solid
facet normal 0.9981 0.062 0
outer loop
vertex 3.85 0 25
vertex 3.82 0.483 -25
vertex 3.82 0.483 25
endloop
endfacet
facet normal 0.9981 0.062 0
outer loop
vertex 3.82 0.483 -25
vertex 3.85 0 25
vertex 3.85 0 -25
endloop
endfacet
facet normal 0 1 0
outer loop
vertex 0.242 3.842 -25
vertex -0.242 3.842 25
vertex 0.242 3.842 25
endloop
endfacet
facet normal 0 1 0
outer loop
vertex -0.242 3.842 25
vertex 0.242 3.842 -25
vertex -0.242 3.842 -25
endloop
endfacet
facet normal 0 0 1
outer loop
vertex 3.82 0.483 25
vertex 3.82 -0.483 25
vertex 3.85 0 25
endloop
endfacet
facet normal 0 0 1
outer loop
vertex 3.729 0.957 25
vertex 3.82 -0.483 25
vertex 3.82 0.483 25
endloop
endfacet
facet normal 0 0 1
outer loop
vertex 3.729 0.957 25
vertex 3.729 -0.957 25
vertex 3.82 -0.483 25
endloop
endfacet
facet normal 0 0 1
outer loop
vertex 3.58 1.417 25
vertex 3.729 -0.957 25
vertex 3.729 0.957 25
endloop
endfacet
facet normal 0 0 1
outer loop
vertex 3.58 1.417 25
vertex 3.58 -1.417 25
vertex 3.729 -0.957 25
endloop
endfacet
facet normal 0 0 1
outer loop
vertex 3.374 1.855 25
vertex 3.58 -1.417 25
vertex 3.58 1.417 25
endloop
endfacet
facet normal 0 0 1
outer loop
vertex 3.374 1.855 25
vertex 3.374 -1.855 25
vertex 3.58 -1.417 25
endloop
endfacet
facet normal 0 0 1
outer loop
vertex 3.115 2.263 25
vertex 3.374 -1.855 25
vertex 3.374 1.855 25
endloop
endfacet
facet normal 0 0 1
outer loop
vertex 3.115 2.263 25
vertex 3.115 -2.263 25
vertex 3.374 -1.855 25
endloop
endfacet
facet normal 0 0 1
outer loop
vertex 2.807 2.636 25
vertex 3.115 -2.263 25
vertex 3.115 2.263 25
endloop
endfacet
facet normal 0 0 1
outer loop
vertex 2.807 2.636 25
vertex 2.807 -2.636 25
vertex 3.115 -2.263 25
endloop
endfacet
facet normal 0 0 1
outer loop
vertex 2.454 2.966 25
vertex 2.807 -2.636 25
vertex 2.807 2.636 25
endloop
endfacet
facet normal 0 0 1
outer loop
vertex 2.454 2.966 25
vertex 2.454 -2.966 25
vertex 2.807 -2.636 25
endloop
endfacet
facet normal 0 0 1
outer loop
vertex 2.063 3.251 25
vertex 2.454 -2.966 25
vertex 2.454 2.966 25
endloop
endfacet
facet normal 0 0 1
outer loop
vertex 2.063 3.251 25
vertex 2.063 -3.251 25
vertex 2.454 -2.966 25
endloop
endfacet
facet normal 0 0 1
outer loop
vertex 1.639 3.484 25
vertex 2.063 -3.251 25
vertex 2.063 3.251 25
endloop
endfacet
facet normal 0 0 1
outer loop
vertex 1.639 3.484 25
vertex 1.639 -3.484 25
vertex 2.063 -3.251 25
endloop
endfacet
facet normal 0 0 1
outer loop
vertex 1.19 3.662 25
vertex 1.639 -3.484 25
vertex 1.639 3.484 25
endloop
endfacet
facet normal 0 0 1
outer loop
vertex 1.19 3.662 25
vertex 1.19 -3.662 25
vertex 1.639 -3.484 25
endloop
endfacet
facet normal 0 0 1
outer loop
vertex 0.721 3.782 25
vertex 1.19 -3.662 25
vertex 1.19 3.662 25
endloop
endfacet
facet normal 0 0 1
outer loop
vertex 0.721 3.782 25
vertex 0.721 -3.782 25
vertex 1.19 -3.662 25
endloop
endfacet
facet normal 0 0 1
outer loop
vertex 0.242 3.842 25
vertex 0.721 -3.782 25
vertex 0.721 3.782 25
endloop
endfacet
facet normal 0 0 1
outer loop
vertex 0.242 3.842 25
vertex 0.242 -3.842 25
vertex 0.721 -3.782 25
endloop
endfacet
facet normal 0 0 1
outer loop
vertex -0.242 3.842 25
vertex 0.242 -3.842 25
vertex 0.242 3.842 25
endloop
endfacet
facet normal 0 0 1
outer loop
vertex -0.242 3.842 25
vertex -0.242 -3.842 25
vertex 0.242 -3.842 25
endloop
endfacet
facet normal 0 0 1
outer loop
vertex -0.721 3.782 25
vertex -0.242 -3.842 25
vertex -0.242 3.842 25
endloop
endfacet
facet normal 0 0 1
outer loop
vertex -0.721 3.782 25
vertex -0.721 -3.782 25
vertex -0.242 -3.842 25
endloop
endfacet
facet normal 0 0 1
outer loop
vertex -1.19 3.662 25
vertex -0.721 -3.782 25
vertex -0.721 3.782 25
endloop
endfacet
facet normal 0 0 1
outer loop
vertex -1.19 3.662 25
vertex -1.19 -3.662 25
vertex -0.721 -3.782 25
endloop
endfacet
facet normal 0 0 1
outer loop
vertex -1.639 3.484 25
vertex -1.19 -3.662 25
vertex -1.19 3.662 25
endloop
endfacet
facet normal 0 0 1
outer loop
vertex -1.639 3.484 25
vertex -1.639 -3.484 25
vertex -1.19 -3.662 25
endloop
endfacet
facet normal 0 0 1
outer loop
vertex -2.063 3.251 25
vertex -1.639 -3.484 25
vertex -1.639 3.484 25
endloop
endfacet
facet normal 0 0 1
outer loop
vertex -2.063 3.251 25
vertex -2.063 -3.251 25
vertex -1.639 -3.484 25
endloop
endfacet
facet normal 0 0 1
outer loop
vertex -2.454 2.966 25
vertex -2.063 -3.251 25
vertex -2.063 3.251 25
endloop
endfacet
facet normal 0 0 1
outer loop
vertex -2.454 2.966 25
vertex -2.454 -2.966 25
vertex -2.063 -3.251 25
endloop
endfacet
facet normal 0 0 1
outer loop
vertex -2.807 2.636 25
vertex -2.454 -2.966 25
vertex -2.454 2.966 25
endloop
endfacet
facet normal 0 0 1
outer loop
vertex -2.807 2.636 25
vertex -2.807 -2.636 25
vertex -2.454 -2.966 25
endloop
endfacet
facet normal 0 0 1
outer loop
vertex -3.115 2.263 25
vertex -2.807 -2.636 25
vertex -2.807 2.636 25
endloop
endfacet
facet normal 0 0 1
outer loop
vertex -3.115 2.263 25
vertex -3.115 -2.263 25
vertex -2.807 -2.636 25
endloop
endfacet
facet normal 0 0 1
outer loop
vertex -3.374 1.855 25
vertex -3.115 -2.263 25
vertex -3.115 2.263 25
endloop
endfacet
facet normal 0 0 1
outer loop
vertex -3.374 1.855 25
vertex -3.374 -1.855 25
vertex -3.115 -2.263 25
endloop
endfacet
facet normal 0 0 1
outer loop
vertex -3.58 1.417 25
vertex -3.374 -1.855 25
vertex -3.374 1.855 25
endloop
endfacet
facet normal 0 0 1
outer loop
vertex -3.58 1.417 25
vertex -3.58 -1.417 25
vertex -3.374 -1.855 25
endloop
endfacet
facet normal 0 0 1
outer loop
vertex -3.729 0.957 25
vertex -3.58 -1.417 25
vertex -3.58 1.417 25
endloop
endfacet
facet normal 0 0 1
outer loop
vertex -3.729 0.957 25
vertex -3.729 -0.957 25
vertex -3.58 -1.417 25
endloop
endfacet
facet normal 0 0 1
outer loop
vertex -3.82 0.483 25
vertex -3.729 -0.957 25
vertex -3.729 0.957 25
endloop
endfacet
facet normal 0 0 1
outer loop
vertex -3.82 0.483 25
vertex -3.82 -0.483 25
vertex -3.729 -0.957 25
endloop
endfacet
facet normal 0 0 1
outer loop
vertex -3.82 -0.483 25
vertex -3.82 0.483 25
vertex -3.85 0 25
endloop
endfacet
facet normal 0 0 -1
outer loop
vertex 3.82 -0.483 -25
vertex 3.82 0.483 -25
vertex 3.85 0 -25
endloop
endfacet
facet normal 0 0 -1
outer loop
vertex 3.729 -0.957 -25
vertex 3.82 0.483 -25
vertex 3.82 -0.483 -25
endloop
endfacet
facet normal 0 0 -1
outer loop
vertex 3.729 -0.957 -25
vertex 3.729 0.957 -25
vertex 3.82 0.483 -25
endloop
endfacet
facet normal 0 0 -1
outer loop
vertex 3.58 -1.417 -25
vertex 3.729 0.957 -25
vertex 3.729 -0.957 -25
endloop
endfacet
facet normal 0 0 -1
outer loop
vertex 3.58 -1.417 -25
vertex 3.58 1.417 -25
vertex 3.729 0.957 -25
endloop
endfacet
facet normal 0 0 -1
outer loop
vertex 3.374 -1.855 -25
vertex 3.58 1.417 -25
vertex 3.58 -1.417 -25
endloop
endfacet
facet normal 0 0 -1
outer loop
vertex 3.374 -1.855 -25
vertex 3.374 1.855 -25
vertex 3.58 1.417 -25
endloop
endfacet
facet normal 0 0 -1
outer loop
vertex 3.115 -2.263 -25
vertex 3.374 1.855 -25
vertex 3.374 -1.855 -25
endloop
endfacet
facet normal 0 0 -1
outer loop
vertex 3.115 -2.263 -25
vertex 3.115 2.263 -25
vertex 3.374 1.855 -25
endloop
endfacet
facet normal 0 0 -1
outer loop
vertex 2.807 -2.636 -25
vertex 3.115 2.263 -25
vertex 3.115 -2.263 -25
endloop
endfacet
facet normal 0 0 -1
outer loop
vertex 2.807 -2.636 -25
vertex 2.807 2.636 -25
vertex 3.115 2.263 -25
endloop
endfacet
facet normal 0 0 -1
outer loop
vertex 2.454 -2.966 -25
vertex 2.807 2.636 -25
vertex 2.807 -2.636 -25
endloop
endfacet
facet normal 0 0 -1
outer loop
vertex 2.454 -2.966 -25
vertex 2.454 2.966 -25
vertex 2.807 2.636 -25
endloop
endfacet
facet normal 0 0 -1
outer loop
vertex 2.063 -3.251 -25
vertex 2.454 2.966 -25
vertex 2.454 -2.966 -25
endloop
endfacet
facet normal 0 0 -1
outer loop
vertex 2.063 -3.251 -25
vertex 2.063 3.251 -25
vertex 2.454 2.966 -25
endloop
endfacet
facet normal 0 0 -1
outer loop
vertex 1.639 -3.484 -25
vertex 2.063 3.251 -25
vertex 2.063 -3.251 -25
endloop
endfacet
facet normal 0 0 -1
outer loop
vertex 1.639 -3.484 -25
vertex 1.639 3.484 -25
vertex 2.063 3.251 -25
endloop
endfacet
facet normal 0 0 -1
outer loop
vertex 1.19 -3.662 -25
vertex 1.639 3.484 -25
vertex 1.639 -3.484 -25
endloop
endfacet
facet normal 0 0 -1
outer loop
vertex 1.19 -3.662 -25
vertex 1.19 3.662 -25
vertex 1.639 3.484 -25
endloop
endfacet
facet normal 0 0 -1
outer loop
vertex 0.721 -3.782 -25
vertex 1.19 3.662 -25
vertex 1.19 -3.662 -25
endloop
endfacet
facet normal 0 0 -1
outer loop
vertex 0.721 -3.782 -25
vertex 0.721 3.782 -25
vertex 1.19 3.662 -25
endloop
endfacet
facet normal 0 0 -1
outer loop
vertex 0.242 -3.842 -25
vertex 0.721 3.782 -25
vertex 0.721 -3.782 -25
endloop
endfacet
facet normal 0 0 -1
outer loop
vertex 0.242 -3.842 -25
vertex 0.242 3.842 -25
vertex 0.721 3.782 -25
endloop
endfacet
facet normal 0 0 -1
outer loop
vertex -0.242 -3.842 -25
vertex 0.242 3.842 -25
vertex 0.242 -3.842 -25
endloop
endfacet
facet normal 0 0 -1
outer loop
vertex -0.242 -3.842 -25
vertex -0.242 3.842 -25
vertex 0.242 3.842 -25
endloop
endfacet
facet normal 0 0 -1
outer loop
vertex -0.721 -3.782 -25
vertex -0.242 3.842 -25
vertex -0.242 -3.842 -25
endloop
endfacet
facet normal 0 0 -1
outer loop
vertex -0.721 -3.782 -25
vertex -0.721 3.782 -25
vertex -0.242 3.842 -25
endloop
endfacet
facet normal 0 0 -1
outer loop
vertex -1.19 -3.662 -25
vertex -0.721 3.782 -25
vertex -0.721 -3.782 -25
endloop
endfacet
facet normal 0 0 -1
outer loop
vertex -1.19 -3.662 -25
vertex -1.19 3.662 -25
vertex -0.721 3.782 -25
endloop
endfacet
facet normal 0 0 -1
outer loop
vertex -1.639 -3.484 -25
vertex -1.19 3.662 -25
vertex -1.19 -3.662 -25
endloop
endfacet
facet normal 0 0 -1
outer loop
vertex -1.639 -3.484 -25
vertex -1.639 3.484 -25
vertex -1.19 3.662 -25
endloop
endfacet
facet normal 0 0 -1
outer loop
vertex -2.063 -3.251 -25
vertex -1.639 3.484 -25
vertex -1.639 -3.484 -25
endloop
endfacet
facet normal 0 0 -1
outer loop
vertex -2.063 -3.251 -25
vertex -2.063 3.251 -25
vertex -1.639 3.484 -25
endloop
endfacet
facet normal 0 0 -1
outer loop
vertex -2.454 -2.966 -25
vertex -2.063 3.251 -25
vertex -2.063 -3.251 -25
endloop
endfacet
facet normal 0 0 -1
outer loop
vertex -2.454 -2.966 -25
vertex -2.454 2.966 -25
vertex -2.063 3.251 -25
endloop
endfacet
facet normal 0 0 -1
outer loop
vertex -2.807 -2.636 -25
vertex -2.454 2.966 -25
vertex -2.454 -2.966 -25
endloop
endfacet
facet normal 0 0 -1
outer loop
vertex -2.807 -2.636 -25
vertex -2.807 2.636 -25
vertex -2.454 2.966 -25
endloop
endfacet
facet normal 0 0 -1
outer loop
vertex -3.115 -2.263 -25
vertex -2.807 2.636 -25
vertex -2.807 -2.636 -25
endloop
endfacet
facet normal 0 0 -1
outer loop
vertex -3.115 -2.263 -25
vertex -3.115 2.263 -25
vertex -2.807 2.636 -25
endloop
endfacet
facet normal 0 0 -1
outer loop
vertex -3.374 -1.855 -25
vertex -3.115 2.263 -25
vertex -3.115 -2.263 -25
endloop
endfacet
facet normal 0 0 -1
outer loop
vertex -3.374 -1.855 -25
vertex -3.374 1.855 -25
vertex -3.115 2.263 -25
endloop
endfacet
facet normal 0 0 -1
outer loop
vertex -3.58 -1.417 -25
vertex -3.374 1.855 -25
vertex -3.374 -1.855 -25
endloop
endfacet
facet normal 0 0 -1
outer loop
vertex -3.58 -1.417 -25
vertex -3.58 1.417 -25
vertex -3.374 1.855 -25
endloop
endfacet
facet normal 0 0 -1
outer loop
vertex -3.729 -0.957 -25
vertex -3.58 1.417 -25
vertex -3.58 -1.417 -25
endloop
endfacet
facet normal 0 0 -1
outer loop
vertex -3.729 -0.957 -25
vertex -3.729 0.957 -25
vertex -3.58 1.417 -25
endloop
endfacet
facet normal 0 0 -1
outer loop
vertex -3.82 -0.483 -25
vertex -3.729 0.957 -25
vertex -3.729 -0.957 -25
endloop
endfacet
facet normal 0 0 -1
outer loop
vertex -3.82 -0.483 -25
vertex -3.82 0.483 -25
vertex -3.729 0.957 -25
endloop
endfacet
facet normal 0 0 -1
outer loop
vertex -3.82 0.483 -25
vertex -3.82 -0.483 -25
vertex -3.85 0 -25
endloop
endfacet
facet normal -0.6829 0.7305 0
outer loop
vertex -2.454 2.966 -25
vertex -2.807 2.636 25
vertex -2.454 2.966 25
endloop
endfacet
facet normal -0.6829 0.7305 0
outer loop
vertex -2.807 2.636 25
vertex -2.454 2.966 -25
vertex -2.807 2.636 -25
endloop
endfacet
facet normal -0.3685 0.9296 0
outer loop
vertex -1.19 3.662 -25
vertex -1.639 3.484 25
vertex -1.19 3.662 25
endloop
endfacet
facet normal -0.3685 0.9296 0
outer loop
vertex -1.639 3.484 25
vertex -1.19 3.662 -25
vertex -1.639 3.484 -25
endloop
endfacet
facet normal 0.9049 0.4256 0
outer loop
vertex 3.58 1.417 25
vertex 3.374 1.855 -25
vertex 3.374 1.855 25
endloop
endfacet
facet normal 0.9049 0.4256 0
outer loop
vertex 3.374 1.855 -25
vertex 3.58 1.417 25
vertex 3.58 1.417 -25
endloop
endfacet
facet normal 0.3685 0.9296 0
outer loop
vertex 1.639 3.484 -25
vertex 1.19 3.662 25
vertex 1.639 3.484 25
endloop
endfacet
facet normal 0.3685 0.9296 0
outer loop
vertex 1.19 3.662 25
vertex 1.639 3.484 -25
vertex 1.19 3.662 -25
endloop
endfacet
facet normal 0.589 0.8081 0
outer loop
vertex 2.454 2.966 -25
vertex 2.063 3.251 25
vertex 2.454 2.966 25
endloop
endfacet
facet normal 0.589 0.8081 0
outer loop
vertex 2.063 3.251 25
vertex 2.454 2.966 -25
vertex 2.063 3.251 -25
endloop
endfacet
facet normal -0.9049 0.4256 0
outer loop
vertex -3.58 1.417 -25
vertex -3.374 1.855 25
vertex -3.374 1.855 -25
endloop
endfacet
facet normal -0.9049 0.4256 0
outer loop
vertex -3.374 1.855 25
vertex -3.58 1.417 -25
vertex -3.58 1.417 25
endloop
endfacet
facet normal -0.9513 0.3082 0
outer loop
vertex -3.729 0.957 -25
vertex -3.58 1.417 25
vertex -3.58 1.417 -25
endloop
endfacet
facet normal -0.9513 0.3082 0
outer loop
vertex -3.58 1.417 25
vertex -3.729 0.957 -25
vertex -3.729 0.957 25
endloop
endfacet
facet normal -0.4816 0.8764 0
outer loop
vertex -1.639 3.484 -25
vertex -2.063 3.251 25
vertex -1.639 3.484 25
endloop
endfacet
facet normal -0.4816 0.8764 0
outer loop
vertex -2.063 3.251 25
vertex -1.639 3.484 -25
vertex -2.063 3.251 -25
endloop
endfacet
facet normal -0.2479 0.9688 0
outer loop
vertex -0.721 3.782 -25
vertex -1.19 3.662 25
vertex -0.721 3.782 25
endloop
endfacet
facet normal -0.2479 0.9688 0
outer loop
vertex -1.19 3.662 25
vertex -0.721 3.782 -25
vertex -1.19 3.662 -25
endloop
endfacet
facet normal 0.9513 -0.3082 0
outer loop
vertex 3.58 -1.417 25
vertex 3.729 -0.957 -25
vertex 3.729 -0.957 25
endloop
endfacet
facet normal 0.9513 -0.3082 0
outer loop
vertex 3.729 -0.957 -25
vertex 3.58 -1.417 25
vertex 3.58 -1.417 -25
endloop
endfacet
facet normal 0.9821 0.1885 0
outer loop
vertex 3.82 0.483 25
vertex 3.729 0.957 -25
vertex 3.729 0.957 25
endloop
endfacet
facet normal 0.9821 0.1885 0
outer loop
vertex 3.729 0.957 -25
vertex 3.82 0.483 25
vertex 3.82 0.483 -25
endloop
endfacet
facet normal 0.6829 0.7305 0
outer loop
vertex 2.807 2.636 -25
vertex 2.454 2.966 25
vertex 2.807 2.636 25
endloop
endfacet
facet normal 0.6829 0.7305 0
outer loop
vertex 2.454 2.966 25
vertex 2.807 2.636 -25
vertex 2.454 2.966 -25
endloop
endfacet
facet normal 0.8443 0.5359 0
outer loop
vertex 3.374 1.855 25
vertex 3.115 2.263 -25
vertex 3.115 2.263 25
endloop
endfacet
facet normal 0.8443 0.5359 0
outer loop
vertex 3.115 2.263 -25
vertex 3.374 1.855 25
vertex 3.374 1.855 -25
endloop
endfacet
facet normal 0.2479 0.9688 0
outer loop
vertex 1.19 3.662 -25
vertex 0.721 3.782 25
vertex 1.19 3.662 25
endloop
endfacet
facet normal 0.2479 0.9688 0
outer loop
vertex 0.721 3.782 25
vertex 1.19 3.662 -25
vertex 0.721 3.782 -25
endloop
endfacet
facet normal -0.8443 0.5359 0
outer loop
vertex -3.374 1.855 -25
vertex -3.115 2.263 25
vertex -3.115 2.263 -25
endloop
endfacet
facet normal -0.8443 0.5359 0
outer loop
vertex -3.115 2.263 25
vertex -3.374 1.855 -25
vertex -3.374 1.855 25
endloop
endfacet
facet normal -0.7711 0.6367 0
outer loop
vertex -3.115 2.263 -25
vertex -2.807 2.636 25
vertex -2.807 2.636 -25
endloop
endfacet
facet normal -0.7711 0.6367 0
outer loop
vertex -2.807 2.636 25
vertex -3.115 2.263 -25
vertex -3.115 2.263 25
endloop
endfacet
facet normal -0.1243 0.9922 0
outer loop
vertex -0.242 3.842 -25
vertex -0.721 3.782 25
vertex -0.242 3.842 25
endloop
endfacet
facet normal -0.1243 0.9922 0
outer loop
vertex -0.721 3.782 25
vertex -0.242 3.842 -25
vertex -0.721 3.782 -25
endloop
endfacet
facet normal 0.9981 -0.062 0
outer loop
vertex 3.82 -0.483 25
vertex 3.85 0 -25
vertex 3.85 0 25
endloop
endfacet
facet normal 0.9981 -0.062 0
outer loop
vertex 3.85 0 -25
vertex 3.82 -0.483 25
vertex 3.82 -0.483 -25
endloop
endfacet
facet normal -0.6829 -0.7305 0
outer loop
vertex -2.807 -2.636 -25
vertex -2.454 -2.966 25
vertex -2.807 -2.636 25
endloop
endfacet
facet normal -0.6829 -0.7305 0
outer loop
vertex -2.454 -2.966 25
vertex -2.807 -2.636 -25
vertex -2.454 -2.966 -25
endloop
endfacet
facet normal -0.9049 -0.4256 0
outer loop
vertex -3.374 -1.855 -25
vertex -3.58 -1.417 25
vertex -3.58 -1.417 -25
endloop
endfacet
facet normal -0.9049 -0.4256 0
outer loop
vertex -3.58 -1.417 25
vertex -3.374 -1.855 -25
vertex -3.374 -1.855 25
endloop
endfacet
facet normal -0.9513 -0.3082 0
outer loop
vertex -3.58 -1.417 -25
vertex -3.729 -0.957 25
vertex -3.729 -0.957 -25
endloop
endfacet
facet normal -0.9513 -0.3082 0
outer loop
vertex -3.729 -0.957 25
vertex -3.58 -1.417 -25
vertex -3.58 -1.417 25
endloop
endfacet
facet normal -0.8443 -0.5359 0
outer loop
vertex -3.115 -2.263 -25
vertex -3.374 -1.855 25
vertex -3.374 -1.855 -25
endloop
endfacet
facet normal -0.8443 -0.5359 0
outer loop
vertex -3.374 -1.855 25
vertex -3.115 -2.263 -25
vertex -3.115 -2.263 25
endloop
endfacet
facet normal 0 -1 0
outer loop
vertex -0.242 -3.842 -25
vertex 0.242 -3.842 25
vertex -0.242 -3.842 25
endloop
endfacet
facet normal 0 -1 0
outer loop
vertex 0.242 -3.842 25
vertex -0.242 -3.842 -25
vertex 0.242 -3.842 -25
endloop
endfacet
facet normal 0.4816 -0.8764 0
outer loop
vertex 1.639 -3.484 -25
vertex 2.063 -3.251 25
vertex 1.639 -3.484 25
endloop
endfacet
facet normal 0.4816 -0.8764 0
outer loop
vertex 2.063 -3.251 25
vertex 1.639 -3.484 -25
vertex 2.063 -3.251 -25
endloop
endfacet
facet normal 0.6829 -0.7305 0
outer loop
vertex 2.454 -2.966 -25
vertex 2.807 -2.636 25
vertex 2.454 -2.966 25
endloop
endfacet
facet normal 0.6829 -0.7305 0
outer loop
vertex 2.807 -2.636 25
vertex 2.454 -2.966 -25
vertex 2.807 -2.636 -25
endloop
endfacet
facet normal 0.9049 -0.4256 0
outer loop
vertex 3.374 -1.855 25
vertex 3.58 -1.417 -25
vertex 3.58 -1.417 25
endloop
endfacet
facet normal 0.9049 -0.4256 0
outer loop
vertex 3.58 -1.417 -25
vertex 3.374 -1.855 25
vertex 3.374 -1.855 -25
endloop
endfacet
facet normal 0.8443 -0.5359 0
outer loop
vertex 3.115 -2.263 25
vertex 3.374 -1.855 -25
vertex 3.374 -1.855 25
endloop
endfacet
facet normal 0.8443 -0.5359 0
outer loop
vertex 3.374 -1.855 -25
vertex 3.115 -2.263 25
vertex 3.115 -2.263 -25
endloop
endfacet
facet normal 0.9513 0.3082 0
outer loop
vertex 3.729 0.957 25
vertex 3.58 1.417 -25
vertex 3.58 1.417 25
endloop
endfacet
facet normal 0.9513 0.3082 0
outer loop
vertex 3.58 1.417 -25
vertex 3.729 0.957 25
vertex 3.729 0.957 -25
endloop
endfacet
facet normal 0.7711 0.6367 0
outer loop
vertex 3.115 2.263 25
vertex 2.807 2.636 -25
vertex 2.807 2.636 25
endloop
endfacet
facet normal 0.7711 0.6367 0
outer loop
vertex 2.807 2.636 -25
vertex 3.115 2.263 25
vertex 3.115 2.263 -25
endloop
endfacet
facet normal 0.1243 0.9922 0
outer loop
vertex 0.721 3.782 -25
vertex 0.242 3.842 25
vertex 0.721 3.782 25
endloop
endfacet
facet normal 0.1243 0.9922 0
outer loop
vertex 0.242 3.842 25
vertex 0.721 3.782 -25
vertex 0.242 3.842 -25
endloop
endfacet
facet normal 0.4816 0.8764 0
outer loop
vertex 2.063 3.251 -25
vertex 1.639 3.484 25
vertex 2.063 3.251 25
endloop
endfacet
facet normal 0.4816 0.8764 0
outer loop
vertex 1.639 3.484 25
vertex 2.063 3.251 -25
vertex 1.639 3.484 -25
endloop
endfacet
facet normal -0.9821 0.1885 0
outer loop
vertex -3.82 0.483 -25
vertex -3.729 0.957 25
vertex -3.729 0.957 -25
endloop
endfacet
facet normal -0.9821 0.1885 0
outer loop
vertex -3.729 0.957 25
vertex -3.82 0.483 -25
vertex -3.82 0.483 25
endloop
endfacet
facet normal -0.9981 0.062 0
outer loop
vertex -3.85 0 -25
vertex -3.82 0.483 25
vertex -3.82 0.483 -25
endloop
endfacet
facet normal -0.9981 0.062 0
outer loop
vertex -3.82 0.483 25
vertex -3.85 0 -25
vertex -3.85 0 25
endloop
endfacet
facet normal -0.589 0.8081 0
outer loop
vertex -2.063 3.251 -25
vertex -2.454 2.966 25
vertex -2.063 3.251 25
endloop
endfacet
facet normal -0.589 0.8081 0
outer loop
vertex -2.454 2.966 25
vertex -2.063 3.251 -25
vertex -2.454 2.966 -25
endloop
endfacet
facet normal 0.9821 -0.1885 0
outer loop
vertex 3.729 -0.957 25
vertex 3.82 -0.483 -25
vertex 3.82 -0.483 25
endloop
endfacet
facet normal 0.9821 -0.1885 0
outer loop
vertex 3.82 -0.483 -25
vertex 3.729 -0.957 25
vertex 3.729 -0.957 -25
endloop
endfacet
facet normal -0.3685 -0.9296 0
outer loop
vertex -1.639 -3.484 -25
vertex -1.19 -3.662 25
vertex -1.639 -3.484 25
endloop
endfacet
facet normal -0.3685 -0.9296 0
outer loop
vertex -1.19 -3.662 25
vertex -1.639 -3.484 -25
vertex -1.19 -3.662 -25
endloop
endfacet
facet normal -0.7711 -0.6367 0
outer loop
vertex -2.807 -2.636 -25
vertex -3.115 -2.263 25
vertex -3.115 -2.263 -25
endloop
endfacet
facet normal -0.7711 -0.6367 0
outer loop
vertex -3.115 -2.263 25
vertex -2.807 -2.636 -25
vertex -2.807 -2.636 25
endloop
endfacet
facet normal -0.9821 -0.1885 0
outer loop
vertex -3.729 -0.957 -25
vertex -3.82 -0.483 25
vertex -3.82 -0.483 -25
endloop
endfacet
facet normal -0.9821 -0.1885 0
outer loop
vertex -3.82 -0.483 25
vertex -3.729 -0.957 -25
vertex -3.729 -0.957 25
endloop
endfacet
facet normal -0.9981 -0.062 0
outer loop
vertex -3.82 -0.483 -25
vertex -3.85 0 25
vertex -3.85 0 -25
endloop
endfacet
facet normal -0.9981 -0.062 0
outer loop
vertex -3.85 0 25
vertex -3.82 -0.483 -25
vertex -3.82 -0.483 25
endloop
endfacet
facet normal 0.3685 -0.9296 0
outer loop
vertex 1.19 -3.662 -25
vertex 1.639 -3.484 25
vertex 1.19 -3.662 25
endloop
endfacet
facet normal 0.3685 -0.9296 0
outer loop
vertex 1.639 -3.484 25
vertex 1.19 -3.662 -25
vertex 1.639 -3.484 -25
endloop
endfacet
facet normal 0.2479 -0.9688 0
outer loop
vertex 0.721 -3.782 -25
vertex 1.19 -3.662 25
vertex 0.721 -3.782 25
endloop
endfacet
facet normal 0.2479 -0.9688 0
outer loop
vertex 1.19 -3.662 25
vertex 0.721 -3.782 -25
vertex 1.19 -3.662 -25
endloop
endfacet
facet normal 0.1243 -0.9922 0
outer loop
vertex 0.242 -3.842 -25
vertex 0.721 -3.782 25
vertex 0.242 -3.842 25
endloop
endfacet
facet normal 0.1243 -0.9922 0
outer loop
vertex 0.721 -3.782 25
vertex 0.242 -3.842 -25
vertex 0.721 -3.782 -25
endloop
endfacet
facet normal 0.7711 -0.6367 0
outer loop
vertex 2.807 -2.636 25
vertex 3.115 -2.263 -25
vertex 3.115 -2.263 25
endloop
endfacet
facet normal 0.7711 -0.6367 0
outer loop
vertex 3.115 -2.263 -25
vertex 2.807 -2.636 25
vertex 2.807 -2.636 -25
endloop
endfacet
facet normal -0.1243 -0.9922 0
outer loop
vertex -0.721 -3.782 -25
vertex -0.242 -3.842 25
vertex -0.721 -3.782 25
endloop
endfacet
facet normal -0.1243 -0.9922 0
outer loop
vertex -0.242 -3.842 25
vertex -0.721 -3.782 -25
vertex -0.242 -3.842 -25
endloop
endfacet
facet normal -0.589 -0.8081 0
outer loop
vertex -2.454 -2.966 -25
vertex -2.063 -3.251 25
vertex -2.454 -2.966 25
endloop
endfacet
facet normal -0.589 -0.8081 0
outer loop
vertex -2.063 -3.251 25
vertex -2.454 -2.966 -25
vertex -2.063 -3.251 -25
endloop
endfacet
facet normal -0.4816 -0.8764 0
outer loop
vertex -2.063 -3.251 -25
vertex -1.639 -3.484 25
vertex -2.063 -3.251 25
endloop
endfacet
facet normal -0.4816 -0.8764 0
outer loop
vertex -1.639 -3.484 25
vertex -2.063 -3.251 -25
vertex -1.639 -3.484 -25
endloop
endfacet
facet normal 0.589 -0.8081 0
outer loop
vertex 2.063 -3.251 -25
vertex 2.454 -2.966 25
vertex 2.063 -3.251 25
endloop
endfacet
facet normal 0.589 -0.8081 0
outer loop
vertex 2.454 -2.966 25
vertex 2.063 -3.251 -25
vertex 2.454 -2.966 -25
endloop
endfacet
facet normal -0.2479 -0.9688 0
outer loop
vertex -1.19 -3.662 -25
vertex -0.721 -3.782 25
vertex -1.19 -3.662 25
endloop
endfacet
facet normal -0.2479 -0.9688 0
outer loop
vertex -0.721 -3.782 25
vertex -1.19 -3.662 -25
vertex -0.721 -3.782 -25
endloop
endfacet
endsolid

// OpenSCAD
$fn = 50;


difference() {
	union() {
		translate(v = [0, 0, -25.0000000000]) {
			cylinder(h = 50, r = 3.8500000000);
		}
	}
	union() {
		translate(v = [0, 0, -100.0000000000]) {
			cylinder(h = 200, r = 0);
		}
	}
}
